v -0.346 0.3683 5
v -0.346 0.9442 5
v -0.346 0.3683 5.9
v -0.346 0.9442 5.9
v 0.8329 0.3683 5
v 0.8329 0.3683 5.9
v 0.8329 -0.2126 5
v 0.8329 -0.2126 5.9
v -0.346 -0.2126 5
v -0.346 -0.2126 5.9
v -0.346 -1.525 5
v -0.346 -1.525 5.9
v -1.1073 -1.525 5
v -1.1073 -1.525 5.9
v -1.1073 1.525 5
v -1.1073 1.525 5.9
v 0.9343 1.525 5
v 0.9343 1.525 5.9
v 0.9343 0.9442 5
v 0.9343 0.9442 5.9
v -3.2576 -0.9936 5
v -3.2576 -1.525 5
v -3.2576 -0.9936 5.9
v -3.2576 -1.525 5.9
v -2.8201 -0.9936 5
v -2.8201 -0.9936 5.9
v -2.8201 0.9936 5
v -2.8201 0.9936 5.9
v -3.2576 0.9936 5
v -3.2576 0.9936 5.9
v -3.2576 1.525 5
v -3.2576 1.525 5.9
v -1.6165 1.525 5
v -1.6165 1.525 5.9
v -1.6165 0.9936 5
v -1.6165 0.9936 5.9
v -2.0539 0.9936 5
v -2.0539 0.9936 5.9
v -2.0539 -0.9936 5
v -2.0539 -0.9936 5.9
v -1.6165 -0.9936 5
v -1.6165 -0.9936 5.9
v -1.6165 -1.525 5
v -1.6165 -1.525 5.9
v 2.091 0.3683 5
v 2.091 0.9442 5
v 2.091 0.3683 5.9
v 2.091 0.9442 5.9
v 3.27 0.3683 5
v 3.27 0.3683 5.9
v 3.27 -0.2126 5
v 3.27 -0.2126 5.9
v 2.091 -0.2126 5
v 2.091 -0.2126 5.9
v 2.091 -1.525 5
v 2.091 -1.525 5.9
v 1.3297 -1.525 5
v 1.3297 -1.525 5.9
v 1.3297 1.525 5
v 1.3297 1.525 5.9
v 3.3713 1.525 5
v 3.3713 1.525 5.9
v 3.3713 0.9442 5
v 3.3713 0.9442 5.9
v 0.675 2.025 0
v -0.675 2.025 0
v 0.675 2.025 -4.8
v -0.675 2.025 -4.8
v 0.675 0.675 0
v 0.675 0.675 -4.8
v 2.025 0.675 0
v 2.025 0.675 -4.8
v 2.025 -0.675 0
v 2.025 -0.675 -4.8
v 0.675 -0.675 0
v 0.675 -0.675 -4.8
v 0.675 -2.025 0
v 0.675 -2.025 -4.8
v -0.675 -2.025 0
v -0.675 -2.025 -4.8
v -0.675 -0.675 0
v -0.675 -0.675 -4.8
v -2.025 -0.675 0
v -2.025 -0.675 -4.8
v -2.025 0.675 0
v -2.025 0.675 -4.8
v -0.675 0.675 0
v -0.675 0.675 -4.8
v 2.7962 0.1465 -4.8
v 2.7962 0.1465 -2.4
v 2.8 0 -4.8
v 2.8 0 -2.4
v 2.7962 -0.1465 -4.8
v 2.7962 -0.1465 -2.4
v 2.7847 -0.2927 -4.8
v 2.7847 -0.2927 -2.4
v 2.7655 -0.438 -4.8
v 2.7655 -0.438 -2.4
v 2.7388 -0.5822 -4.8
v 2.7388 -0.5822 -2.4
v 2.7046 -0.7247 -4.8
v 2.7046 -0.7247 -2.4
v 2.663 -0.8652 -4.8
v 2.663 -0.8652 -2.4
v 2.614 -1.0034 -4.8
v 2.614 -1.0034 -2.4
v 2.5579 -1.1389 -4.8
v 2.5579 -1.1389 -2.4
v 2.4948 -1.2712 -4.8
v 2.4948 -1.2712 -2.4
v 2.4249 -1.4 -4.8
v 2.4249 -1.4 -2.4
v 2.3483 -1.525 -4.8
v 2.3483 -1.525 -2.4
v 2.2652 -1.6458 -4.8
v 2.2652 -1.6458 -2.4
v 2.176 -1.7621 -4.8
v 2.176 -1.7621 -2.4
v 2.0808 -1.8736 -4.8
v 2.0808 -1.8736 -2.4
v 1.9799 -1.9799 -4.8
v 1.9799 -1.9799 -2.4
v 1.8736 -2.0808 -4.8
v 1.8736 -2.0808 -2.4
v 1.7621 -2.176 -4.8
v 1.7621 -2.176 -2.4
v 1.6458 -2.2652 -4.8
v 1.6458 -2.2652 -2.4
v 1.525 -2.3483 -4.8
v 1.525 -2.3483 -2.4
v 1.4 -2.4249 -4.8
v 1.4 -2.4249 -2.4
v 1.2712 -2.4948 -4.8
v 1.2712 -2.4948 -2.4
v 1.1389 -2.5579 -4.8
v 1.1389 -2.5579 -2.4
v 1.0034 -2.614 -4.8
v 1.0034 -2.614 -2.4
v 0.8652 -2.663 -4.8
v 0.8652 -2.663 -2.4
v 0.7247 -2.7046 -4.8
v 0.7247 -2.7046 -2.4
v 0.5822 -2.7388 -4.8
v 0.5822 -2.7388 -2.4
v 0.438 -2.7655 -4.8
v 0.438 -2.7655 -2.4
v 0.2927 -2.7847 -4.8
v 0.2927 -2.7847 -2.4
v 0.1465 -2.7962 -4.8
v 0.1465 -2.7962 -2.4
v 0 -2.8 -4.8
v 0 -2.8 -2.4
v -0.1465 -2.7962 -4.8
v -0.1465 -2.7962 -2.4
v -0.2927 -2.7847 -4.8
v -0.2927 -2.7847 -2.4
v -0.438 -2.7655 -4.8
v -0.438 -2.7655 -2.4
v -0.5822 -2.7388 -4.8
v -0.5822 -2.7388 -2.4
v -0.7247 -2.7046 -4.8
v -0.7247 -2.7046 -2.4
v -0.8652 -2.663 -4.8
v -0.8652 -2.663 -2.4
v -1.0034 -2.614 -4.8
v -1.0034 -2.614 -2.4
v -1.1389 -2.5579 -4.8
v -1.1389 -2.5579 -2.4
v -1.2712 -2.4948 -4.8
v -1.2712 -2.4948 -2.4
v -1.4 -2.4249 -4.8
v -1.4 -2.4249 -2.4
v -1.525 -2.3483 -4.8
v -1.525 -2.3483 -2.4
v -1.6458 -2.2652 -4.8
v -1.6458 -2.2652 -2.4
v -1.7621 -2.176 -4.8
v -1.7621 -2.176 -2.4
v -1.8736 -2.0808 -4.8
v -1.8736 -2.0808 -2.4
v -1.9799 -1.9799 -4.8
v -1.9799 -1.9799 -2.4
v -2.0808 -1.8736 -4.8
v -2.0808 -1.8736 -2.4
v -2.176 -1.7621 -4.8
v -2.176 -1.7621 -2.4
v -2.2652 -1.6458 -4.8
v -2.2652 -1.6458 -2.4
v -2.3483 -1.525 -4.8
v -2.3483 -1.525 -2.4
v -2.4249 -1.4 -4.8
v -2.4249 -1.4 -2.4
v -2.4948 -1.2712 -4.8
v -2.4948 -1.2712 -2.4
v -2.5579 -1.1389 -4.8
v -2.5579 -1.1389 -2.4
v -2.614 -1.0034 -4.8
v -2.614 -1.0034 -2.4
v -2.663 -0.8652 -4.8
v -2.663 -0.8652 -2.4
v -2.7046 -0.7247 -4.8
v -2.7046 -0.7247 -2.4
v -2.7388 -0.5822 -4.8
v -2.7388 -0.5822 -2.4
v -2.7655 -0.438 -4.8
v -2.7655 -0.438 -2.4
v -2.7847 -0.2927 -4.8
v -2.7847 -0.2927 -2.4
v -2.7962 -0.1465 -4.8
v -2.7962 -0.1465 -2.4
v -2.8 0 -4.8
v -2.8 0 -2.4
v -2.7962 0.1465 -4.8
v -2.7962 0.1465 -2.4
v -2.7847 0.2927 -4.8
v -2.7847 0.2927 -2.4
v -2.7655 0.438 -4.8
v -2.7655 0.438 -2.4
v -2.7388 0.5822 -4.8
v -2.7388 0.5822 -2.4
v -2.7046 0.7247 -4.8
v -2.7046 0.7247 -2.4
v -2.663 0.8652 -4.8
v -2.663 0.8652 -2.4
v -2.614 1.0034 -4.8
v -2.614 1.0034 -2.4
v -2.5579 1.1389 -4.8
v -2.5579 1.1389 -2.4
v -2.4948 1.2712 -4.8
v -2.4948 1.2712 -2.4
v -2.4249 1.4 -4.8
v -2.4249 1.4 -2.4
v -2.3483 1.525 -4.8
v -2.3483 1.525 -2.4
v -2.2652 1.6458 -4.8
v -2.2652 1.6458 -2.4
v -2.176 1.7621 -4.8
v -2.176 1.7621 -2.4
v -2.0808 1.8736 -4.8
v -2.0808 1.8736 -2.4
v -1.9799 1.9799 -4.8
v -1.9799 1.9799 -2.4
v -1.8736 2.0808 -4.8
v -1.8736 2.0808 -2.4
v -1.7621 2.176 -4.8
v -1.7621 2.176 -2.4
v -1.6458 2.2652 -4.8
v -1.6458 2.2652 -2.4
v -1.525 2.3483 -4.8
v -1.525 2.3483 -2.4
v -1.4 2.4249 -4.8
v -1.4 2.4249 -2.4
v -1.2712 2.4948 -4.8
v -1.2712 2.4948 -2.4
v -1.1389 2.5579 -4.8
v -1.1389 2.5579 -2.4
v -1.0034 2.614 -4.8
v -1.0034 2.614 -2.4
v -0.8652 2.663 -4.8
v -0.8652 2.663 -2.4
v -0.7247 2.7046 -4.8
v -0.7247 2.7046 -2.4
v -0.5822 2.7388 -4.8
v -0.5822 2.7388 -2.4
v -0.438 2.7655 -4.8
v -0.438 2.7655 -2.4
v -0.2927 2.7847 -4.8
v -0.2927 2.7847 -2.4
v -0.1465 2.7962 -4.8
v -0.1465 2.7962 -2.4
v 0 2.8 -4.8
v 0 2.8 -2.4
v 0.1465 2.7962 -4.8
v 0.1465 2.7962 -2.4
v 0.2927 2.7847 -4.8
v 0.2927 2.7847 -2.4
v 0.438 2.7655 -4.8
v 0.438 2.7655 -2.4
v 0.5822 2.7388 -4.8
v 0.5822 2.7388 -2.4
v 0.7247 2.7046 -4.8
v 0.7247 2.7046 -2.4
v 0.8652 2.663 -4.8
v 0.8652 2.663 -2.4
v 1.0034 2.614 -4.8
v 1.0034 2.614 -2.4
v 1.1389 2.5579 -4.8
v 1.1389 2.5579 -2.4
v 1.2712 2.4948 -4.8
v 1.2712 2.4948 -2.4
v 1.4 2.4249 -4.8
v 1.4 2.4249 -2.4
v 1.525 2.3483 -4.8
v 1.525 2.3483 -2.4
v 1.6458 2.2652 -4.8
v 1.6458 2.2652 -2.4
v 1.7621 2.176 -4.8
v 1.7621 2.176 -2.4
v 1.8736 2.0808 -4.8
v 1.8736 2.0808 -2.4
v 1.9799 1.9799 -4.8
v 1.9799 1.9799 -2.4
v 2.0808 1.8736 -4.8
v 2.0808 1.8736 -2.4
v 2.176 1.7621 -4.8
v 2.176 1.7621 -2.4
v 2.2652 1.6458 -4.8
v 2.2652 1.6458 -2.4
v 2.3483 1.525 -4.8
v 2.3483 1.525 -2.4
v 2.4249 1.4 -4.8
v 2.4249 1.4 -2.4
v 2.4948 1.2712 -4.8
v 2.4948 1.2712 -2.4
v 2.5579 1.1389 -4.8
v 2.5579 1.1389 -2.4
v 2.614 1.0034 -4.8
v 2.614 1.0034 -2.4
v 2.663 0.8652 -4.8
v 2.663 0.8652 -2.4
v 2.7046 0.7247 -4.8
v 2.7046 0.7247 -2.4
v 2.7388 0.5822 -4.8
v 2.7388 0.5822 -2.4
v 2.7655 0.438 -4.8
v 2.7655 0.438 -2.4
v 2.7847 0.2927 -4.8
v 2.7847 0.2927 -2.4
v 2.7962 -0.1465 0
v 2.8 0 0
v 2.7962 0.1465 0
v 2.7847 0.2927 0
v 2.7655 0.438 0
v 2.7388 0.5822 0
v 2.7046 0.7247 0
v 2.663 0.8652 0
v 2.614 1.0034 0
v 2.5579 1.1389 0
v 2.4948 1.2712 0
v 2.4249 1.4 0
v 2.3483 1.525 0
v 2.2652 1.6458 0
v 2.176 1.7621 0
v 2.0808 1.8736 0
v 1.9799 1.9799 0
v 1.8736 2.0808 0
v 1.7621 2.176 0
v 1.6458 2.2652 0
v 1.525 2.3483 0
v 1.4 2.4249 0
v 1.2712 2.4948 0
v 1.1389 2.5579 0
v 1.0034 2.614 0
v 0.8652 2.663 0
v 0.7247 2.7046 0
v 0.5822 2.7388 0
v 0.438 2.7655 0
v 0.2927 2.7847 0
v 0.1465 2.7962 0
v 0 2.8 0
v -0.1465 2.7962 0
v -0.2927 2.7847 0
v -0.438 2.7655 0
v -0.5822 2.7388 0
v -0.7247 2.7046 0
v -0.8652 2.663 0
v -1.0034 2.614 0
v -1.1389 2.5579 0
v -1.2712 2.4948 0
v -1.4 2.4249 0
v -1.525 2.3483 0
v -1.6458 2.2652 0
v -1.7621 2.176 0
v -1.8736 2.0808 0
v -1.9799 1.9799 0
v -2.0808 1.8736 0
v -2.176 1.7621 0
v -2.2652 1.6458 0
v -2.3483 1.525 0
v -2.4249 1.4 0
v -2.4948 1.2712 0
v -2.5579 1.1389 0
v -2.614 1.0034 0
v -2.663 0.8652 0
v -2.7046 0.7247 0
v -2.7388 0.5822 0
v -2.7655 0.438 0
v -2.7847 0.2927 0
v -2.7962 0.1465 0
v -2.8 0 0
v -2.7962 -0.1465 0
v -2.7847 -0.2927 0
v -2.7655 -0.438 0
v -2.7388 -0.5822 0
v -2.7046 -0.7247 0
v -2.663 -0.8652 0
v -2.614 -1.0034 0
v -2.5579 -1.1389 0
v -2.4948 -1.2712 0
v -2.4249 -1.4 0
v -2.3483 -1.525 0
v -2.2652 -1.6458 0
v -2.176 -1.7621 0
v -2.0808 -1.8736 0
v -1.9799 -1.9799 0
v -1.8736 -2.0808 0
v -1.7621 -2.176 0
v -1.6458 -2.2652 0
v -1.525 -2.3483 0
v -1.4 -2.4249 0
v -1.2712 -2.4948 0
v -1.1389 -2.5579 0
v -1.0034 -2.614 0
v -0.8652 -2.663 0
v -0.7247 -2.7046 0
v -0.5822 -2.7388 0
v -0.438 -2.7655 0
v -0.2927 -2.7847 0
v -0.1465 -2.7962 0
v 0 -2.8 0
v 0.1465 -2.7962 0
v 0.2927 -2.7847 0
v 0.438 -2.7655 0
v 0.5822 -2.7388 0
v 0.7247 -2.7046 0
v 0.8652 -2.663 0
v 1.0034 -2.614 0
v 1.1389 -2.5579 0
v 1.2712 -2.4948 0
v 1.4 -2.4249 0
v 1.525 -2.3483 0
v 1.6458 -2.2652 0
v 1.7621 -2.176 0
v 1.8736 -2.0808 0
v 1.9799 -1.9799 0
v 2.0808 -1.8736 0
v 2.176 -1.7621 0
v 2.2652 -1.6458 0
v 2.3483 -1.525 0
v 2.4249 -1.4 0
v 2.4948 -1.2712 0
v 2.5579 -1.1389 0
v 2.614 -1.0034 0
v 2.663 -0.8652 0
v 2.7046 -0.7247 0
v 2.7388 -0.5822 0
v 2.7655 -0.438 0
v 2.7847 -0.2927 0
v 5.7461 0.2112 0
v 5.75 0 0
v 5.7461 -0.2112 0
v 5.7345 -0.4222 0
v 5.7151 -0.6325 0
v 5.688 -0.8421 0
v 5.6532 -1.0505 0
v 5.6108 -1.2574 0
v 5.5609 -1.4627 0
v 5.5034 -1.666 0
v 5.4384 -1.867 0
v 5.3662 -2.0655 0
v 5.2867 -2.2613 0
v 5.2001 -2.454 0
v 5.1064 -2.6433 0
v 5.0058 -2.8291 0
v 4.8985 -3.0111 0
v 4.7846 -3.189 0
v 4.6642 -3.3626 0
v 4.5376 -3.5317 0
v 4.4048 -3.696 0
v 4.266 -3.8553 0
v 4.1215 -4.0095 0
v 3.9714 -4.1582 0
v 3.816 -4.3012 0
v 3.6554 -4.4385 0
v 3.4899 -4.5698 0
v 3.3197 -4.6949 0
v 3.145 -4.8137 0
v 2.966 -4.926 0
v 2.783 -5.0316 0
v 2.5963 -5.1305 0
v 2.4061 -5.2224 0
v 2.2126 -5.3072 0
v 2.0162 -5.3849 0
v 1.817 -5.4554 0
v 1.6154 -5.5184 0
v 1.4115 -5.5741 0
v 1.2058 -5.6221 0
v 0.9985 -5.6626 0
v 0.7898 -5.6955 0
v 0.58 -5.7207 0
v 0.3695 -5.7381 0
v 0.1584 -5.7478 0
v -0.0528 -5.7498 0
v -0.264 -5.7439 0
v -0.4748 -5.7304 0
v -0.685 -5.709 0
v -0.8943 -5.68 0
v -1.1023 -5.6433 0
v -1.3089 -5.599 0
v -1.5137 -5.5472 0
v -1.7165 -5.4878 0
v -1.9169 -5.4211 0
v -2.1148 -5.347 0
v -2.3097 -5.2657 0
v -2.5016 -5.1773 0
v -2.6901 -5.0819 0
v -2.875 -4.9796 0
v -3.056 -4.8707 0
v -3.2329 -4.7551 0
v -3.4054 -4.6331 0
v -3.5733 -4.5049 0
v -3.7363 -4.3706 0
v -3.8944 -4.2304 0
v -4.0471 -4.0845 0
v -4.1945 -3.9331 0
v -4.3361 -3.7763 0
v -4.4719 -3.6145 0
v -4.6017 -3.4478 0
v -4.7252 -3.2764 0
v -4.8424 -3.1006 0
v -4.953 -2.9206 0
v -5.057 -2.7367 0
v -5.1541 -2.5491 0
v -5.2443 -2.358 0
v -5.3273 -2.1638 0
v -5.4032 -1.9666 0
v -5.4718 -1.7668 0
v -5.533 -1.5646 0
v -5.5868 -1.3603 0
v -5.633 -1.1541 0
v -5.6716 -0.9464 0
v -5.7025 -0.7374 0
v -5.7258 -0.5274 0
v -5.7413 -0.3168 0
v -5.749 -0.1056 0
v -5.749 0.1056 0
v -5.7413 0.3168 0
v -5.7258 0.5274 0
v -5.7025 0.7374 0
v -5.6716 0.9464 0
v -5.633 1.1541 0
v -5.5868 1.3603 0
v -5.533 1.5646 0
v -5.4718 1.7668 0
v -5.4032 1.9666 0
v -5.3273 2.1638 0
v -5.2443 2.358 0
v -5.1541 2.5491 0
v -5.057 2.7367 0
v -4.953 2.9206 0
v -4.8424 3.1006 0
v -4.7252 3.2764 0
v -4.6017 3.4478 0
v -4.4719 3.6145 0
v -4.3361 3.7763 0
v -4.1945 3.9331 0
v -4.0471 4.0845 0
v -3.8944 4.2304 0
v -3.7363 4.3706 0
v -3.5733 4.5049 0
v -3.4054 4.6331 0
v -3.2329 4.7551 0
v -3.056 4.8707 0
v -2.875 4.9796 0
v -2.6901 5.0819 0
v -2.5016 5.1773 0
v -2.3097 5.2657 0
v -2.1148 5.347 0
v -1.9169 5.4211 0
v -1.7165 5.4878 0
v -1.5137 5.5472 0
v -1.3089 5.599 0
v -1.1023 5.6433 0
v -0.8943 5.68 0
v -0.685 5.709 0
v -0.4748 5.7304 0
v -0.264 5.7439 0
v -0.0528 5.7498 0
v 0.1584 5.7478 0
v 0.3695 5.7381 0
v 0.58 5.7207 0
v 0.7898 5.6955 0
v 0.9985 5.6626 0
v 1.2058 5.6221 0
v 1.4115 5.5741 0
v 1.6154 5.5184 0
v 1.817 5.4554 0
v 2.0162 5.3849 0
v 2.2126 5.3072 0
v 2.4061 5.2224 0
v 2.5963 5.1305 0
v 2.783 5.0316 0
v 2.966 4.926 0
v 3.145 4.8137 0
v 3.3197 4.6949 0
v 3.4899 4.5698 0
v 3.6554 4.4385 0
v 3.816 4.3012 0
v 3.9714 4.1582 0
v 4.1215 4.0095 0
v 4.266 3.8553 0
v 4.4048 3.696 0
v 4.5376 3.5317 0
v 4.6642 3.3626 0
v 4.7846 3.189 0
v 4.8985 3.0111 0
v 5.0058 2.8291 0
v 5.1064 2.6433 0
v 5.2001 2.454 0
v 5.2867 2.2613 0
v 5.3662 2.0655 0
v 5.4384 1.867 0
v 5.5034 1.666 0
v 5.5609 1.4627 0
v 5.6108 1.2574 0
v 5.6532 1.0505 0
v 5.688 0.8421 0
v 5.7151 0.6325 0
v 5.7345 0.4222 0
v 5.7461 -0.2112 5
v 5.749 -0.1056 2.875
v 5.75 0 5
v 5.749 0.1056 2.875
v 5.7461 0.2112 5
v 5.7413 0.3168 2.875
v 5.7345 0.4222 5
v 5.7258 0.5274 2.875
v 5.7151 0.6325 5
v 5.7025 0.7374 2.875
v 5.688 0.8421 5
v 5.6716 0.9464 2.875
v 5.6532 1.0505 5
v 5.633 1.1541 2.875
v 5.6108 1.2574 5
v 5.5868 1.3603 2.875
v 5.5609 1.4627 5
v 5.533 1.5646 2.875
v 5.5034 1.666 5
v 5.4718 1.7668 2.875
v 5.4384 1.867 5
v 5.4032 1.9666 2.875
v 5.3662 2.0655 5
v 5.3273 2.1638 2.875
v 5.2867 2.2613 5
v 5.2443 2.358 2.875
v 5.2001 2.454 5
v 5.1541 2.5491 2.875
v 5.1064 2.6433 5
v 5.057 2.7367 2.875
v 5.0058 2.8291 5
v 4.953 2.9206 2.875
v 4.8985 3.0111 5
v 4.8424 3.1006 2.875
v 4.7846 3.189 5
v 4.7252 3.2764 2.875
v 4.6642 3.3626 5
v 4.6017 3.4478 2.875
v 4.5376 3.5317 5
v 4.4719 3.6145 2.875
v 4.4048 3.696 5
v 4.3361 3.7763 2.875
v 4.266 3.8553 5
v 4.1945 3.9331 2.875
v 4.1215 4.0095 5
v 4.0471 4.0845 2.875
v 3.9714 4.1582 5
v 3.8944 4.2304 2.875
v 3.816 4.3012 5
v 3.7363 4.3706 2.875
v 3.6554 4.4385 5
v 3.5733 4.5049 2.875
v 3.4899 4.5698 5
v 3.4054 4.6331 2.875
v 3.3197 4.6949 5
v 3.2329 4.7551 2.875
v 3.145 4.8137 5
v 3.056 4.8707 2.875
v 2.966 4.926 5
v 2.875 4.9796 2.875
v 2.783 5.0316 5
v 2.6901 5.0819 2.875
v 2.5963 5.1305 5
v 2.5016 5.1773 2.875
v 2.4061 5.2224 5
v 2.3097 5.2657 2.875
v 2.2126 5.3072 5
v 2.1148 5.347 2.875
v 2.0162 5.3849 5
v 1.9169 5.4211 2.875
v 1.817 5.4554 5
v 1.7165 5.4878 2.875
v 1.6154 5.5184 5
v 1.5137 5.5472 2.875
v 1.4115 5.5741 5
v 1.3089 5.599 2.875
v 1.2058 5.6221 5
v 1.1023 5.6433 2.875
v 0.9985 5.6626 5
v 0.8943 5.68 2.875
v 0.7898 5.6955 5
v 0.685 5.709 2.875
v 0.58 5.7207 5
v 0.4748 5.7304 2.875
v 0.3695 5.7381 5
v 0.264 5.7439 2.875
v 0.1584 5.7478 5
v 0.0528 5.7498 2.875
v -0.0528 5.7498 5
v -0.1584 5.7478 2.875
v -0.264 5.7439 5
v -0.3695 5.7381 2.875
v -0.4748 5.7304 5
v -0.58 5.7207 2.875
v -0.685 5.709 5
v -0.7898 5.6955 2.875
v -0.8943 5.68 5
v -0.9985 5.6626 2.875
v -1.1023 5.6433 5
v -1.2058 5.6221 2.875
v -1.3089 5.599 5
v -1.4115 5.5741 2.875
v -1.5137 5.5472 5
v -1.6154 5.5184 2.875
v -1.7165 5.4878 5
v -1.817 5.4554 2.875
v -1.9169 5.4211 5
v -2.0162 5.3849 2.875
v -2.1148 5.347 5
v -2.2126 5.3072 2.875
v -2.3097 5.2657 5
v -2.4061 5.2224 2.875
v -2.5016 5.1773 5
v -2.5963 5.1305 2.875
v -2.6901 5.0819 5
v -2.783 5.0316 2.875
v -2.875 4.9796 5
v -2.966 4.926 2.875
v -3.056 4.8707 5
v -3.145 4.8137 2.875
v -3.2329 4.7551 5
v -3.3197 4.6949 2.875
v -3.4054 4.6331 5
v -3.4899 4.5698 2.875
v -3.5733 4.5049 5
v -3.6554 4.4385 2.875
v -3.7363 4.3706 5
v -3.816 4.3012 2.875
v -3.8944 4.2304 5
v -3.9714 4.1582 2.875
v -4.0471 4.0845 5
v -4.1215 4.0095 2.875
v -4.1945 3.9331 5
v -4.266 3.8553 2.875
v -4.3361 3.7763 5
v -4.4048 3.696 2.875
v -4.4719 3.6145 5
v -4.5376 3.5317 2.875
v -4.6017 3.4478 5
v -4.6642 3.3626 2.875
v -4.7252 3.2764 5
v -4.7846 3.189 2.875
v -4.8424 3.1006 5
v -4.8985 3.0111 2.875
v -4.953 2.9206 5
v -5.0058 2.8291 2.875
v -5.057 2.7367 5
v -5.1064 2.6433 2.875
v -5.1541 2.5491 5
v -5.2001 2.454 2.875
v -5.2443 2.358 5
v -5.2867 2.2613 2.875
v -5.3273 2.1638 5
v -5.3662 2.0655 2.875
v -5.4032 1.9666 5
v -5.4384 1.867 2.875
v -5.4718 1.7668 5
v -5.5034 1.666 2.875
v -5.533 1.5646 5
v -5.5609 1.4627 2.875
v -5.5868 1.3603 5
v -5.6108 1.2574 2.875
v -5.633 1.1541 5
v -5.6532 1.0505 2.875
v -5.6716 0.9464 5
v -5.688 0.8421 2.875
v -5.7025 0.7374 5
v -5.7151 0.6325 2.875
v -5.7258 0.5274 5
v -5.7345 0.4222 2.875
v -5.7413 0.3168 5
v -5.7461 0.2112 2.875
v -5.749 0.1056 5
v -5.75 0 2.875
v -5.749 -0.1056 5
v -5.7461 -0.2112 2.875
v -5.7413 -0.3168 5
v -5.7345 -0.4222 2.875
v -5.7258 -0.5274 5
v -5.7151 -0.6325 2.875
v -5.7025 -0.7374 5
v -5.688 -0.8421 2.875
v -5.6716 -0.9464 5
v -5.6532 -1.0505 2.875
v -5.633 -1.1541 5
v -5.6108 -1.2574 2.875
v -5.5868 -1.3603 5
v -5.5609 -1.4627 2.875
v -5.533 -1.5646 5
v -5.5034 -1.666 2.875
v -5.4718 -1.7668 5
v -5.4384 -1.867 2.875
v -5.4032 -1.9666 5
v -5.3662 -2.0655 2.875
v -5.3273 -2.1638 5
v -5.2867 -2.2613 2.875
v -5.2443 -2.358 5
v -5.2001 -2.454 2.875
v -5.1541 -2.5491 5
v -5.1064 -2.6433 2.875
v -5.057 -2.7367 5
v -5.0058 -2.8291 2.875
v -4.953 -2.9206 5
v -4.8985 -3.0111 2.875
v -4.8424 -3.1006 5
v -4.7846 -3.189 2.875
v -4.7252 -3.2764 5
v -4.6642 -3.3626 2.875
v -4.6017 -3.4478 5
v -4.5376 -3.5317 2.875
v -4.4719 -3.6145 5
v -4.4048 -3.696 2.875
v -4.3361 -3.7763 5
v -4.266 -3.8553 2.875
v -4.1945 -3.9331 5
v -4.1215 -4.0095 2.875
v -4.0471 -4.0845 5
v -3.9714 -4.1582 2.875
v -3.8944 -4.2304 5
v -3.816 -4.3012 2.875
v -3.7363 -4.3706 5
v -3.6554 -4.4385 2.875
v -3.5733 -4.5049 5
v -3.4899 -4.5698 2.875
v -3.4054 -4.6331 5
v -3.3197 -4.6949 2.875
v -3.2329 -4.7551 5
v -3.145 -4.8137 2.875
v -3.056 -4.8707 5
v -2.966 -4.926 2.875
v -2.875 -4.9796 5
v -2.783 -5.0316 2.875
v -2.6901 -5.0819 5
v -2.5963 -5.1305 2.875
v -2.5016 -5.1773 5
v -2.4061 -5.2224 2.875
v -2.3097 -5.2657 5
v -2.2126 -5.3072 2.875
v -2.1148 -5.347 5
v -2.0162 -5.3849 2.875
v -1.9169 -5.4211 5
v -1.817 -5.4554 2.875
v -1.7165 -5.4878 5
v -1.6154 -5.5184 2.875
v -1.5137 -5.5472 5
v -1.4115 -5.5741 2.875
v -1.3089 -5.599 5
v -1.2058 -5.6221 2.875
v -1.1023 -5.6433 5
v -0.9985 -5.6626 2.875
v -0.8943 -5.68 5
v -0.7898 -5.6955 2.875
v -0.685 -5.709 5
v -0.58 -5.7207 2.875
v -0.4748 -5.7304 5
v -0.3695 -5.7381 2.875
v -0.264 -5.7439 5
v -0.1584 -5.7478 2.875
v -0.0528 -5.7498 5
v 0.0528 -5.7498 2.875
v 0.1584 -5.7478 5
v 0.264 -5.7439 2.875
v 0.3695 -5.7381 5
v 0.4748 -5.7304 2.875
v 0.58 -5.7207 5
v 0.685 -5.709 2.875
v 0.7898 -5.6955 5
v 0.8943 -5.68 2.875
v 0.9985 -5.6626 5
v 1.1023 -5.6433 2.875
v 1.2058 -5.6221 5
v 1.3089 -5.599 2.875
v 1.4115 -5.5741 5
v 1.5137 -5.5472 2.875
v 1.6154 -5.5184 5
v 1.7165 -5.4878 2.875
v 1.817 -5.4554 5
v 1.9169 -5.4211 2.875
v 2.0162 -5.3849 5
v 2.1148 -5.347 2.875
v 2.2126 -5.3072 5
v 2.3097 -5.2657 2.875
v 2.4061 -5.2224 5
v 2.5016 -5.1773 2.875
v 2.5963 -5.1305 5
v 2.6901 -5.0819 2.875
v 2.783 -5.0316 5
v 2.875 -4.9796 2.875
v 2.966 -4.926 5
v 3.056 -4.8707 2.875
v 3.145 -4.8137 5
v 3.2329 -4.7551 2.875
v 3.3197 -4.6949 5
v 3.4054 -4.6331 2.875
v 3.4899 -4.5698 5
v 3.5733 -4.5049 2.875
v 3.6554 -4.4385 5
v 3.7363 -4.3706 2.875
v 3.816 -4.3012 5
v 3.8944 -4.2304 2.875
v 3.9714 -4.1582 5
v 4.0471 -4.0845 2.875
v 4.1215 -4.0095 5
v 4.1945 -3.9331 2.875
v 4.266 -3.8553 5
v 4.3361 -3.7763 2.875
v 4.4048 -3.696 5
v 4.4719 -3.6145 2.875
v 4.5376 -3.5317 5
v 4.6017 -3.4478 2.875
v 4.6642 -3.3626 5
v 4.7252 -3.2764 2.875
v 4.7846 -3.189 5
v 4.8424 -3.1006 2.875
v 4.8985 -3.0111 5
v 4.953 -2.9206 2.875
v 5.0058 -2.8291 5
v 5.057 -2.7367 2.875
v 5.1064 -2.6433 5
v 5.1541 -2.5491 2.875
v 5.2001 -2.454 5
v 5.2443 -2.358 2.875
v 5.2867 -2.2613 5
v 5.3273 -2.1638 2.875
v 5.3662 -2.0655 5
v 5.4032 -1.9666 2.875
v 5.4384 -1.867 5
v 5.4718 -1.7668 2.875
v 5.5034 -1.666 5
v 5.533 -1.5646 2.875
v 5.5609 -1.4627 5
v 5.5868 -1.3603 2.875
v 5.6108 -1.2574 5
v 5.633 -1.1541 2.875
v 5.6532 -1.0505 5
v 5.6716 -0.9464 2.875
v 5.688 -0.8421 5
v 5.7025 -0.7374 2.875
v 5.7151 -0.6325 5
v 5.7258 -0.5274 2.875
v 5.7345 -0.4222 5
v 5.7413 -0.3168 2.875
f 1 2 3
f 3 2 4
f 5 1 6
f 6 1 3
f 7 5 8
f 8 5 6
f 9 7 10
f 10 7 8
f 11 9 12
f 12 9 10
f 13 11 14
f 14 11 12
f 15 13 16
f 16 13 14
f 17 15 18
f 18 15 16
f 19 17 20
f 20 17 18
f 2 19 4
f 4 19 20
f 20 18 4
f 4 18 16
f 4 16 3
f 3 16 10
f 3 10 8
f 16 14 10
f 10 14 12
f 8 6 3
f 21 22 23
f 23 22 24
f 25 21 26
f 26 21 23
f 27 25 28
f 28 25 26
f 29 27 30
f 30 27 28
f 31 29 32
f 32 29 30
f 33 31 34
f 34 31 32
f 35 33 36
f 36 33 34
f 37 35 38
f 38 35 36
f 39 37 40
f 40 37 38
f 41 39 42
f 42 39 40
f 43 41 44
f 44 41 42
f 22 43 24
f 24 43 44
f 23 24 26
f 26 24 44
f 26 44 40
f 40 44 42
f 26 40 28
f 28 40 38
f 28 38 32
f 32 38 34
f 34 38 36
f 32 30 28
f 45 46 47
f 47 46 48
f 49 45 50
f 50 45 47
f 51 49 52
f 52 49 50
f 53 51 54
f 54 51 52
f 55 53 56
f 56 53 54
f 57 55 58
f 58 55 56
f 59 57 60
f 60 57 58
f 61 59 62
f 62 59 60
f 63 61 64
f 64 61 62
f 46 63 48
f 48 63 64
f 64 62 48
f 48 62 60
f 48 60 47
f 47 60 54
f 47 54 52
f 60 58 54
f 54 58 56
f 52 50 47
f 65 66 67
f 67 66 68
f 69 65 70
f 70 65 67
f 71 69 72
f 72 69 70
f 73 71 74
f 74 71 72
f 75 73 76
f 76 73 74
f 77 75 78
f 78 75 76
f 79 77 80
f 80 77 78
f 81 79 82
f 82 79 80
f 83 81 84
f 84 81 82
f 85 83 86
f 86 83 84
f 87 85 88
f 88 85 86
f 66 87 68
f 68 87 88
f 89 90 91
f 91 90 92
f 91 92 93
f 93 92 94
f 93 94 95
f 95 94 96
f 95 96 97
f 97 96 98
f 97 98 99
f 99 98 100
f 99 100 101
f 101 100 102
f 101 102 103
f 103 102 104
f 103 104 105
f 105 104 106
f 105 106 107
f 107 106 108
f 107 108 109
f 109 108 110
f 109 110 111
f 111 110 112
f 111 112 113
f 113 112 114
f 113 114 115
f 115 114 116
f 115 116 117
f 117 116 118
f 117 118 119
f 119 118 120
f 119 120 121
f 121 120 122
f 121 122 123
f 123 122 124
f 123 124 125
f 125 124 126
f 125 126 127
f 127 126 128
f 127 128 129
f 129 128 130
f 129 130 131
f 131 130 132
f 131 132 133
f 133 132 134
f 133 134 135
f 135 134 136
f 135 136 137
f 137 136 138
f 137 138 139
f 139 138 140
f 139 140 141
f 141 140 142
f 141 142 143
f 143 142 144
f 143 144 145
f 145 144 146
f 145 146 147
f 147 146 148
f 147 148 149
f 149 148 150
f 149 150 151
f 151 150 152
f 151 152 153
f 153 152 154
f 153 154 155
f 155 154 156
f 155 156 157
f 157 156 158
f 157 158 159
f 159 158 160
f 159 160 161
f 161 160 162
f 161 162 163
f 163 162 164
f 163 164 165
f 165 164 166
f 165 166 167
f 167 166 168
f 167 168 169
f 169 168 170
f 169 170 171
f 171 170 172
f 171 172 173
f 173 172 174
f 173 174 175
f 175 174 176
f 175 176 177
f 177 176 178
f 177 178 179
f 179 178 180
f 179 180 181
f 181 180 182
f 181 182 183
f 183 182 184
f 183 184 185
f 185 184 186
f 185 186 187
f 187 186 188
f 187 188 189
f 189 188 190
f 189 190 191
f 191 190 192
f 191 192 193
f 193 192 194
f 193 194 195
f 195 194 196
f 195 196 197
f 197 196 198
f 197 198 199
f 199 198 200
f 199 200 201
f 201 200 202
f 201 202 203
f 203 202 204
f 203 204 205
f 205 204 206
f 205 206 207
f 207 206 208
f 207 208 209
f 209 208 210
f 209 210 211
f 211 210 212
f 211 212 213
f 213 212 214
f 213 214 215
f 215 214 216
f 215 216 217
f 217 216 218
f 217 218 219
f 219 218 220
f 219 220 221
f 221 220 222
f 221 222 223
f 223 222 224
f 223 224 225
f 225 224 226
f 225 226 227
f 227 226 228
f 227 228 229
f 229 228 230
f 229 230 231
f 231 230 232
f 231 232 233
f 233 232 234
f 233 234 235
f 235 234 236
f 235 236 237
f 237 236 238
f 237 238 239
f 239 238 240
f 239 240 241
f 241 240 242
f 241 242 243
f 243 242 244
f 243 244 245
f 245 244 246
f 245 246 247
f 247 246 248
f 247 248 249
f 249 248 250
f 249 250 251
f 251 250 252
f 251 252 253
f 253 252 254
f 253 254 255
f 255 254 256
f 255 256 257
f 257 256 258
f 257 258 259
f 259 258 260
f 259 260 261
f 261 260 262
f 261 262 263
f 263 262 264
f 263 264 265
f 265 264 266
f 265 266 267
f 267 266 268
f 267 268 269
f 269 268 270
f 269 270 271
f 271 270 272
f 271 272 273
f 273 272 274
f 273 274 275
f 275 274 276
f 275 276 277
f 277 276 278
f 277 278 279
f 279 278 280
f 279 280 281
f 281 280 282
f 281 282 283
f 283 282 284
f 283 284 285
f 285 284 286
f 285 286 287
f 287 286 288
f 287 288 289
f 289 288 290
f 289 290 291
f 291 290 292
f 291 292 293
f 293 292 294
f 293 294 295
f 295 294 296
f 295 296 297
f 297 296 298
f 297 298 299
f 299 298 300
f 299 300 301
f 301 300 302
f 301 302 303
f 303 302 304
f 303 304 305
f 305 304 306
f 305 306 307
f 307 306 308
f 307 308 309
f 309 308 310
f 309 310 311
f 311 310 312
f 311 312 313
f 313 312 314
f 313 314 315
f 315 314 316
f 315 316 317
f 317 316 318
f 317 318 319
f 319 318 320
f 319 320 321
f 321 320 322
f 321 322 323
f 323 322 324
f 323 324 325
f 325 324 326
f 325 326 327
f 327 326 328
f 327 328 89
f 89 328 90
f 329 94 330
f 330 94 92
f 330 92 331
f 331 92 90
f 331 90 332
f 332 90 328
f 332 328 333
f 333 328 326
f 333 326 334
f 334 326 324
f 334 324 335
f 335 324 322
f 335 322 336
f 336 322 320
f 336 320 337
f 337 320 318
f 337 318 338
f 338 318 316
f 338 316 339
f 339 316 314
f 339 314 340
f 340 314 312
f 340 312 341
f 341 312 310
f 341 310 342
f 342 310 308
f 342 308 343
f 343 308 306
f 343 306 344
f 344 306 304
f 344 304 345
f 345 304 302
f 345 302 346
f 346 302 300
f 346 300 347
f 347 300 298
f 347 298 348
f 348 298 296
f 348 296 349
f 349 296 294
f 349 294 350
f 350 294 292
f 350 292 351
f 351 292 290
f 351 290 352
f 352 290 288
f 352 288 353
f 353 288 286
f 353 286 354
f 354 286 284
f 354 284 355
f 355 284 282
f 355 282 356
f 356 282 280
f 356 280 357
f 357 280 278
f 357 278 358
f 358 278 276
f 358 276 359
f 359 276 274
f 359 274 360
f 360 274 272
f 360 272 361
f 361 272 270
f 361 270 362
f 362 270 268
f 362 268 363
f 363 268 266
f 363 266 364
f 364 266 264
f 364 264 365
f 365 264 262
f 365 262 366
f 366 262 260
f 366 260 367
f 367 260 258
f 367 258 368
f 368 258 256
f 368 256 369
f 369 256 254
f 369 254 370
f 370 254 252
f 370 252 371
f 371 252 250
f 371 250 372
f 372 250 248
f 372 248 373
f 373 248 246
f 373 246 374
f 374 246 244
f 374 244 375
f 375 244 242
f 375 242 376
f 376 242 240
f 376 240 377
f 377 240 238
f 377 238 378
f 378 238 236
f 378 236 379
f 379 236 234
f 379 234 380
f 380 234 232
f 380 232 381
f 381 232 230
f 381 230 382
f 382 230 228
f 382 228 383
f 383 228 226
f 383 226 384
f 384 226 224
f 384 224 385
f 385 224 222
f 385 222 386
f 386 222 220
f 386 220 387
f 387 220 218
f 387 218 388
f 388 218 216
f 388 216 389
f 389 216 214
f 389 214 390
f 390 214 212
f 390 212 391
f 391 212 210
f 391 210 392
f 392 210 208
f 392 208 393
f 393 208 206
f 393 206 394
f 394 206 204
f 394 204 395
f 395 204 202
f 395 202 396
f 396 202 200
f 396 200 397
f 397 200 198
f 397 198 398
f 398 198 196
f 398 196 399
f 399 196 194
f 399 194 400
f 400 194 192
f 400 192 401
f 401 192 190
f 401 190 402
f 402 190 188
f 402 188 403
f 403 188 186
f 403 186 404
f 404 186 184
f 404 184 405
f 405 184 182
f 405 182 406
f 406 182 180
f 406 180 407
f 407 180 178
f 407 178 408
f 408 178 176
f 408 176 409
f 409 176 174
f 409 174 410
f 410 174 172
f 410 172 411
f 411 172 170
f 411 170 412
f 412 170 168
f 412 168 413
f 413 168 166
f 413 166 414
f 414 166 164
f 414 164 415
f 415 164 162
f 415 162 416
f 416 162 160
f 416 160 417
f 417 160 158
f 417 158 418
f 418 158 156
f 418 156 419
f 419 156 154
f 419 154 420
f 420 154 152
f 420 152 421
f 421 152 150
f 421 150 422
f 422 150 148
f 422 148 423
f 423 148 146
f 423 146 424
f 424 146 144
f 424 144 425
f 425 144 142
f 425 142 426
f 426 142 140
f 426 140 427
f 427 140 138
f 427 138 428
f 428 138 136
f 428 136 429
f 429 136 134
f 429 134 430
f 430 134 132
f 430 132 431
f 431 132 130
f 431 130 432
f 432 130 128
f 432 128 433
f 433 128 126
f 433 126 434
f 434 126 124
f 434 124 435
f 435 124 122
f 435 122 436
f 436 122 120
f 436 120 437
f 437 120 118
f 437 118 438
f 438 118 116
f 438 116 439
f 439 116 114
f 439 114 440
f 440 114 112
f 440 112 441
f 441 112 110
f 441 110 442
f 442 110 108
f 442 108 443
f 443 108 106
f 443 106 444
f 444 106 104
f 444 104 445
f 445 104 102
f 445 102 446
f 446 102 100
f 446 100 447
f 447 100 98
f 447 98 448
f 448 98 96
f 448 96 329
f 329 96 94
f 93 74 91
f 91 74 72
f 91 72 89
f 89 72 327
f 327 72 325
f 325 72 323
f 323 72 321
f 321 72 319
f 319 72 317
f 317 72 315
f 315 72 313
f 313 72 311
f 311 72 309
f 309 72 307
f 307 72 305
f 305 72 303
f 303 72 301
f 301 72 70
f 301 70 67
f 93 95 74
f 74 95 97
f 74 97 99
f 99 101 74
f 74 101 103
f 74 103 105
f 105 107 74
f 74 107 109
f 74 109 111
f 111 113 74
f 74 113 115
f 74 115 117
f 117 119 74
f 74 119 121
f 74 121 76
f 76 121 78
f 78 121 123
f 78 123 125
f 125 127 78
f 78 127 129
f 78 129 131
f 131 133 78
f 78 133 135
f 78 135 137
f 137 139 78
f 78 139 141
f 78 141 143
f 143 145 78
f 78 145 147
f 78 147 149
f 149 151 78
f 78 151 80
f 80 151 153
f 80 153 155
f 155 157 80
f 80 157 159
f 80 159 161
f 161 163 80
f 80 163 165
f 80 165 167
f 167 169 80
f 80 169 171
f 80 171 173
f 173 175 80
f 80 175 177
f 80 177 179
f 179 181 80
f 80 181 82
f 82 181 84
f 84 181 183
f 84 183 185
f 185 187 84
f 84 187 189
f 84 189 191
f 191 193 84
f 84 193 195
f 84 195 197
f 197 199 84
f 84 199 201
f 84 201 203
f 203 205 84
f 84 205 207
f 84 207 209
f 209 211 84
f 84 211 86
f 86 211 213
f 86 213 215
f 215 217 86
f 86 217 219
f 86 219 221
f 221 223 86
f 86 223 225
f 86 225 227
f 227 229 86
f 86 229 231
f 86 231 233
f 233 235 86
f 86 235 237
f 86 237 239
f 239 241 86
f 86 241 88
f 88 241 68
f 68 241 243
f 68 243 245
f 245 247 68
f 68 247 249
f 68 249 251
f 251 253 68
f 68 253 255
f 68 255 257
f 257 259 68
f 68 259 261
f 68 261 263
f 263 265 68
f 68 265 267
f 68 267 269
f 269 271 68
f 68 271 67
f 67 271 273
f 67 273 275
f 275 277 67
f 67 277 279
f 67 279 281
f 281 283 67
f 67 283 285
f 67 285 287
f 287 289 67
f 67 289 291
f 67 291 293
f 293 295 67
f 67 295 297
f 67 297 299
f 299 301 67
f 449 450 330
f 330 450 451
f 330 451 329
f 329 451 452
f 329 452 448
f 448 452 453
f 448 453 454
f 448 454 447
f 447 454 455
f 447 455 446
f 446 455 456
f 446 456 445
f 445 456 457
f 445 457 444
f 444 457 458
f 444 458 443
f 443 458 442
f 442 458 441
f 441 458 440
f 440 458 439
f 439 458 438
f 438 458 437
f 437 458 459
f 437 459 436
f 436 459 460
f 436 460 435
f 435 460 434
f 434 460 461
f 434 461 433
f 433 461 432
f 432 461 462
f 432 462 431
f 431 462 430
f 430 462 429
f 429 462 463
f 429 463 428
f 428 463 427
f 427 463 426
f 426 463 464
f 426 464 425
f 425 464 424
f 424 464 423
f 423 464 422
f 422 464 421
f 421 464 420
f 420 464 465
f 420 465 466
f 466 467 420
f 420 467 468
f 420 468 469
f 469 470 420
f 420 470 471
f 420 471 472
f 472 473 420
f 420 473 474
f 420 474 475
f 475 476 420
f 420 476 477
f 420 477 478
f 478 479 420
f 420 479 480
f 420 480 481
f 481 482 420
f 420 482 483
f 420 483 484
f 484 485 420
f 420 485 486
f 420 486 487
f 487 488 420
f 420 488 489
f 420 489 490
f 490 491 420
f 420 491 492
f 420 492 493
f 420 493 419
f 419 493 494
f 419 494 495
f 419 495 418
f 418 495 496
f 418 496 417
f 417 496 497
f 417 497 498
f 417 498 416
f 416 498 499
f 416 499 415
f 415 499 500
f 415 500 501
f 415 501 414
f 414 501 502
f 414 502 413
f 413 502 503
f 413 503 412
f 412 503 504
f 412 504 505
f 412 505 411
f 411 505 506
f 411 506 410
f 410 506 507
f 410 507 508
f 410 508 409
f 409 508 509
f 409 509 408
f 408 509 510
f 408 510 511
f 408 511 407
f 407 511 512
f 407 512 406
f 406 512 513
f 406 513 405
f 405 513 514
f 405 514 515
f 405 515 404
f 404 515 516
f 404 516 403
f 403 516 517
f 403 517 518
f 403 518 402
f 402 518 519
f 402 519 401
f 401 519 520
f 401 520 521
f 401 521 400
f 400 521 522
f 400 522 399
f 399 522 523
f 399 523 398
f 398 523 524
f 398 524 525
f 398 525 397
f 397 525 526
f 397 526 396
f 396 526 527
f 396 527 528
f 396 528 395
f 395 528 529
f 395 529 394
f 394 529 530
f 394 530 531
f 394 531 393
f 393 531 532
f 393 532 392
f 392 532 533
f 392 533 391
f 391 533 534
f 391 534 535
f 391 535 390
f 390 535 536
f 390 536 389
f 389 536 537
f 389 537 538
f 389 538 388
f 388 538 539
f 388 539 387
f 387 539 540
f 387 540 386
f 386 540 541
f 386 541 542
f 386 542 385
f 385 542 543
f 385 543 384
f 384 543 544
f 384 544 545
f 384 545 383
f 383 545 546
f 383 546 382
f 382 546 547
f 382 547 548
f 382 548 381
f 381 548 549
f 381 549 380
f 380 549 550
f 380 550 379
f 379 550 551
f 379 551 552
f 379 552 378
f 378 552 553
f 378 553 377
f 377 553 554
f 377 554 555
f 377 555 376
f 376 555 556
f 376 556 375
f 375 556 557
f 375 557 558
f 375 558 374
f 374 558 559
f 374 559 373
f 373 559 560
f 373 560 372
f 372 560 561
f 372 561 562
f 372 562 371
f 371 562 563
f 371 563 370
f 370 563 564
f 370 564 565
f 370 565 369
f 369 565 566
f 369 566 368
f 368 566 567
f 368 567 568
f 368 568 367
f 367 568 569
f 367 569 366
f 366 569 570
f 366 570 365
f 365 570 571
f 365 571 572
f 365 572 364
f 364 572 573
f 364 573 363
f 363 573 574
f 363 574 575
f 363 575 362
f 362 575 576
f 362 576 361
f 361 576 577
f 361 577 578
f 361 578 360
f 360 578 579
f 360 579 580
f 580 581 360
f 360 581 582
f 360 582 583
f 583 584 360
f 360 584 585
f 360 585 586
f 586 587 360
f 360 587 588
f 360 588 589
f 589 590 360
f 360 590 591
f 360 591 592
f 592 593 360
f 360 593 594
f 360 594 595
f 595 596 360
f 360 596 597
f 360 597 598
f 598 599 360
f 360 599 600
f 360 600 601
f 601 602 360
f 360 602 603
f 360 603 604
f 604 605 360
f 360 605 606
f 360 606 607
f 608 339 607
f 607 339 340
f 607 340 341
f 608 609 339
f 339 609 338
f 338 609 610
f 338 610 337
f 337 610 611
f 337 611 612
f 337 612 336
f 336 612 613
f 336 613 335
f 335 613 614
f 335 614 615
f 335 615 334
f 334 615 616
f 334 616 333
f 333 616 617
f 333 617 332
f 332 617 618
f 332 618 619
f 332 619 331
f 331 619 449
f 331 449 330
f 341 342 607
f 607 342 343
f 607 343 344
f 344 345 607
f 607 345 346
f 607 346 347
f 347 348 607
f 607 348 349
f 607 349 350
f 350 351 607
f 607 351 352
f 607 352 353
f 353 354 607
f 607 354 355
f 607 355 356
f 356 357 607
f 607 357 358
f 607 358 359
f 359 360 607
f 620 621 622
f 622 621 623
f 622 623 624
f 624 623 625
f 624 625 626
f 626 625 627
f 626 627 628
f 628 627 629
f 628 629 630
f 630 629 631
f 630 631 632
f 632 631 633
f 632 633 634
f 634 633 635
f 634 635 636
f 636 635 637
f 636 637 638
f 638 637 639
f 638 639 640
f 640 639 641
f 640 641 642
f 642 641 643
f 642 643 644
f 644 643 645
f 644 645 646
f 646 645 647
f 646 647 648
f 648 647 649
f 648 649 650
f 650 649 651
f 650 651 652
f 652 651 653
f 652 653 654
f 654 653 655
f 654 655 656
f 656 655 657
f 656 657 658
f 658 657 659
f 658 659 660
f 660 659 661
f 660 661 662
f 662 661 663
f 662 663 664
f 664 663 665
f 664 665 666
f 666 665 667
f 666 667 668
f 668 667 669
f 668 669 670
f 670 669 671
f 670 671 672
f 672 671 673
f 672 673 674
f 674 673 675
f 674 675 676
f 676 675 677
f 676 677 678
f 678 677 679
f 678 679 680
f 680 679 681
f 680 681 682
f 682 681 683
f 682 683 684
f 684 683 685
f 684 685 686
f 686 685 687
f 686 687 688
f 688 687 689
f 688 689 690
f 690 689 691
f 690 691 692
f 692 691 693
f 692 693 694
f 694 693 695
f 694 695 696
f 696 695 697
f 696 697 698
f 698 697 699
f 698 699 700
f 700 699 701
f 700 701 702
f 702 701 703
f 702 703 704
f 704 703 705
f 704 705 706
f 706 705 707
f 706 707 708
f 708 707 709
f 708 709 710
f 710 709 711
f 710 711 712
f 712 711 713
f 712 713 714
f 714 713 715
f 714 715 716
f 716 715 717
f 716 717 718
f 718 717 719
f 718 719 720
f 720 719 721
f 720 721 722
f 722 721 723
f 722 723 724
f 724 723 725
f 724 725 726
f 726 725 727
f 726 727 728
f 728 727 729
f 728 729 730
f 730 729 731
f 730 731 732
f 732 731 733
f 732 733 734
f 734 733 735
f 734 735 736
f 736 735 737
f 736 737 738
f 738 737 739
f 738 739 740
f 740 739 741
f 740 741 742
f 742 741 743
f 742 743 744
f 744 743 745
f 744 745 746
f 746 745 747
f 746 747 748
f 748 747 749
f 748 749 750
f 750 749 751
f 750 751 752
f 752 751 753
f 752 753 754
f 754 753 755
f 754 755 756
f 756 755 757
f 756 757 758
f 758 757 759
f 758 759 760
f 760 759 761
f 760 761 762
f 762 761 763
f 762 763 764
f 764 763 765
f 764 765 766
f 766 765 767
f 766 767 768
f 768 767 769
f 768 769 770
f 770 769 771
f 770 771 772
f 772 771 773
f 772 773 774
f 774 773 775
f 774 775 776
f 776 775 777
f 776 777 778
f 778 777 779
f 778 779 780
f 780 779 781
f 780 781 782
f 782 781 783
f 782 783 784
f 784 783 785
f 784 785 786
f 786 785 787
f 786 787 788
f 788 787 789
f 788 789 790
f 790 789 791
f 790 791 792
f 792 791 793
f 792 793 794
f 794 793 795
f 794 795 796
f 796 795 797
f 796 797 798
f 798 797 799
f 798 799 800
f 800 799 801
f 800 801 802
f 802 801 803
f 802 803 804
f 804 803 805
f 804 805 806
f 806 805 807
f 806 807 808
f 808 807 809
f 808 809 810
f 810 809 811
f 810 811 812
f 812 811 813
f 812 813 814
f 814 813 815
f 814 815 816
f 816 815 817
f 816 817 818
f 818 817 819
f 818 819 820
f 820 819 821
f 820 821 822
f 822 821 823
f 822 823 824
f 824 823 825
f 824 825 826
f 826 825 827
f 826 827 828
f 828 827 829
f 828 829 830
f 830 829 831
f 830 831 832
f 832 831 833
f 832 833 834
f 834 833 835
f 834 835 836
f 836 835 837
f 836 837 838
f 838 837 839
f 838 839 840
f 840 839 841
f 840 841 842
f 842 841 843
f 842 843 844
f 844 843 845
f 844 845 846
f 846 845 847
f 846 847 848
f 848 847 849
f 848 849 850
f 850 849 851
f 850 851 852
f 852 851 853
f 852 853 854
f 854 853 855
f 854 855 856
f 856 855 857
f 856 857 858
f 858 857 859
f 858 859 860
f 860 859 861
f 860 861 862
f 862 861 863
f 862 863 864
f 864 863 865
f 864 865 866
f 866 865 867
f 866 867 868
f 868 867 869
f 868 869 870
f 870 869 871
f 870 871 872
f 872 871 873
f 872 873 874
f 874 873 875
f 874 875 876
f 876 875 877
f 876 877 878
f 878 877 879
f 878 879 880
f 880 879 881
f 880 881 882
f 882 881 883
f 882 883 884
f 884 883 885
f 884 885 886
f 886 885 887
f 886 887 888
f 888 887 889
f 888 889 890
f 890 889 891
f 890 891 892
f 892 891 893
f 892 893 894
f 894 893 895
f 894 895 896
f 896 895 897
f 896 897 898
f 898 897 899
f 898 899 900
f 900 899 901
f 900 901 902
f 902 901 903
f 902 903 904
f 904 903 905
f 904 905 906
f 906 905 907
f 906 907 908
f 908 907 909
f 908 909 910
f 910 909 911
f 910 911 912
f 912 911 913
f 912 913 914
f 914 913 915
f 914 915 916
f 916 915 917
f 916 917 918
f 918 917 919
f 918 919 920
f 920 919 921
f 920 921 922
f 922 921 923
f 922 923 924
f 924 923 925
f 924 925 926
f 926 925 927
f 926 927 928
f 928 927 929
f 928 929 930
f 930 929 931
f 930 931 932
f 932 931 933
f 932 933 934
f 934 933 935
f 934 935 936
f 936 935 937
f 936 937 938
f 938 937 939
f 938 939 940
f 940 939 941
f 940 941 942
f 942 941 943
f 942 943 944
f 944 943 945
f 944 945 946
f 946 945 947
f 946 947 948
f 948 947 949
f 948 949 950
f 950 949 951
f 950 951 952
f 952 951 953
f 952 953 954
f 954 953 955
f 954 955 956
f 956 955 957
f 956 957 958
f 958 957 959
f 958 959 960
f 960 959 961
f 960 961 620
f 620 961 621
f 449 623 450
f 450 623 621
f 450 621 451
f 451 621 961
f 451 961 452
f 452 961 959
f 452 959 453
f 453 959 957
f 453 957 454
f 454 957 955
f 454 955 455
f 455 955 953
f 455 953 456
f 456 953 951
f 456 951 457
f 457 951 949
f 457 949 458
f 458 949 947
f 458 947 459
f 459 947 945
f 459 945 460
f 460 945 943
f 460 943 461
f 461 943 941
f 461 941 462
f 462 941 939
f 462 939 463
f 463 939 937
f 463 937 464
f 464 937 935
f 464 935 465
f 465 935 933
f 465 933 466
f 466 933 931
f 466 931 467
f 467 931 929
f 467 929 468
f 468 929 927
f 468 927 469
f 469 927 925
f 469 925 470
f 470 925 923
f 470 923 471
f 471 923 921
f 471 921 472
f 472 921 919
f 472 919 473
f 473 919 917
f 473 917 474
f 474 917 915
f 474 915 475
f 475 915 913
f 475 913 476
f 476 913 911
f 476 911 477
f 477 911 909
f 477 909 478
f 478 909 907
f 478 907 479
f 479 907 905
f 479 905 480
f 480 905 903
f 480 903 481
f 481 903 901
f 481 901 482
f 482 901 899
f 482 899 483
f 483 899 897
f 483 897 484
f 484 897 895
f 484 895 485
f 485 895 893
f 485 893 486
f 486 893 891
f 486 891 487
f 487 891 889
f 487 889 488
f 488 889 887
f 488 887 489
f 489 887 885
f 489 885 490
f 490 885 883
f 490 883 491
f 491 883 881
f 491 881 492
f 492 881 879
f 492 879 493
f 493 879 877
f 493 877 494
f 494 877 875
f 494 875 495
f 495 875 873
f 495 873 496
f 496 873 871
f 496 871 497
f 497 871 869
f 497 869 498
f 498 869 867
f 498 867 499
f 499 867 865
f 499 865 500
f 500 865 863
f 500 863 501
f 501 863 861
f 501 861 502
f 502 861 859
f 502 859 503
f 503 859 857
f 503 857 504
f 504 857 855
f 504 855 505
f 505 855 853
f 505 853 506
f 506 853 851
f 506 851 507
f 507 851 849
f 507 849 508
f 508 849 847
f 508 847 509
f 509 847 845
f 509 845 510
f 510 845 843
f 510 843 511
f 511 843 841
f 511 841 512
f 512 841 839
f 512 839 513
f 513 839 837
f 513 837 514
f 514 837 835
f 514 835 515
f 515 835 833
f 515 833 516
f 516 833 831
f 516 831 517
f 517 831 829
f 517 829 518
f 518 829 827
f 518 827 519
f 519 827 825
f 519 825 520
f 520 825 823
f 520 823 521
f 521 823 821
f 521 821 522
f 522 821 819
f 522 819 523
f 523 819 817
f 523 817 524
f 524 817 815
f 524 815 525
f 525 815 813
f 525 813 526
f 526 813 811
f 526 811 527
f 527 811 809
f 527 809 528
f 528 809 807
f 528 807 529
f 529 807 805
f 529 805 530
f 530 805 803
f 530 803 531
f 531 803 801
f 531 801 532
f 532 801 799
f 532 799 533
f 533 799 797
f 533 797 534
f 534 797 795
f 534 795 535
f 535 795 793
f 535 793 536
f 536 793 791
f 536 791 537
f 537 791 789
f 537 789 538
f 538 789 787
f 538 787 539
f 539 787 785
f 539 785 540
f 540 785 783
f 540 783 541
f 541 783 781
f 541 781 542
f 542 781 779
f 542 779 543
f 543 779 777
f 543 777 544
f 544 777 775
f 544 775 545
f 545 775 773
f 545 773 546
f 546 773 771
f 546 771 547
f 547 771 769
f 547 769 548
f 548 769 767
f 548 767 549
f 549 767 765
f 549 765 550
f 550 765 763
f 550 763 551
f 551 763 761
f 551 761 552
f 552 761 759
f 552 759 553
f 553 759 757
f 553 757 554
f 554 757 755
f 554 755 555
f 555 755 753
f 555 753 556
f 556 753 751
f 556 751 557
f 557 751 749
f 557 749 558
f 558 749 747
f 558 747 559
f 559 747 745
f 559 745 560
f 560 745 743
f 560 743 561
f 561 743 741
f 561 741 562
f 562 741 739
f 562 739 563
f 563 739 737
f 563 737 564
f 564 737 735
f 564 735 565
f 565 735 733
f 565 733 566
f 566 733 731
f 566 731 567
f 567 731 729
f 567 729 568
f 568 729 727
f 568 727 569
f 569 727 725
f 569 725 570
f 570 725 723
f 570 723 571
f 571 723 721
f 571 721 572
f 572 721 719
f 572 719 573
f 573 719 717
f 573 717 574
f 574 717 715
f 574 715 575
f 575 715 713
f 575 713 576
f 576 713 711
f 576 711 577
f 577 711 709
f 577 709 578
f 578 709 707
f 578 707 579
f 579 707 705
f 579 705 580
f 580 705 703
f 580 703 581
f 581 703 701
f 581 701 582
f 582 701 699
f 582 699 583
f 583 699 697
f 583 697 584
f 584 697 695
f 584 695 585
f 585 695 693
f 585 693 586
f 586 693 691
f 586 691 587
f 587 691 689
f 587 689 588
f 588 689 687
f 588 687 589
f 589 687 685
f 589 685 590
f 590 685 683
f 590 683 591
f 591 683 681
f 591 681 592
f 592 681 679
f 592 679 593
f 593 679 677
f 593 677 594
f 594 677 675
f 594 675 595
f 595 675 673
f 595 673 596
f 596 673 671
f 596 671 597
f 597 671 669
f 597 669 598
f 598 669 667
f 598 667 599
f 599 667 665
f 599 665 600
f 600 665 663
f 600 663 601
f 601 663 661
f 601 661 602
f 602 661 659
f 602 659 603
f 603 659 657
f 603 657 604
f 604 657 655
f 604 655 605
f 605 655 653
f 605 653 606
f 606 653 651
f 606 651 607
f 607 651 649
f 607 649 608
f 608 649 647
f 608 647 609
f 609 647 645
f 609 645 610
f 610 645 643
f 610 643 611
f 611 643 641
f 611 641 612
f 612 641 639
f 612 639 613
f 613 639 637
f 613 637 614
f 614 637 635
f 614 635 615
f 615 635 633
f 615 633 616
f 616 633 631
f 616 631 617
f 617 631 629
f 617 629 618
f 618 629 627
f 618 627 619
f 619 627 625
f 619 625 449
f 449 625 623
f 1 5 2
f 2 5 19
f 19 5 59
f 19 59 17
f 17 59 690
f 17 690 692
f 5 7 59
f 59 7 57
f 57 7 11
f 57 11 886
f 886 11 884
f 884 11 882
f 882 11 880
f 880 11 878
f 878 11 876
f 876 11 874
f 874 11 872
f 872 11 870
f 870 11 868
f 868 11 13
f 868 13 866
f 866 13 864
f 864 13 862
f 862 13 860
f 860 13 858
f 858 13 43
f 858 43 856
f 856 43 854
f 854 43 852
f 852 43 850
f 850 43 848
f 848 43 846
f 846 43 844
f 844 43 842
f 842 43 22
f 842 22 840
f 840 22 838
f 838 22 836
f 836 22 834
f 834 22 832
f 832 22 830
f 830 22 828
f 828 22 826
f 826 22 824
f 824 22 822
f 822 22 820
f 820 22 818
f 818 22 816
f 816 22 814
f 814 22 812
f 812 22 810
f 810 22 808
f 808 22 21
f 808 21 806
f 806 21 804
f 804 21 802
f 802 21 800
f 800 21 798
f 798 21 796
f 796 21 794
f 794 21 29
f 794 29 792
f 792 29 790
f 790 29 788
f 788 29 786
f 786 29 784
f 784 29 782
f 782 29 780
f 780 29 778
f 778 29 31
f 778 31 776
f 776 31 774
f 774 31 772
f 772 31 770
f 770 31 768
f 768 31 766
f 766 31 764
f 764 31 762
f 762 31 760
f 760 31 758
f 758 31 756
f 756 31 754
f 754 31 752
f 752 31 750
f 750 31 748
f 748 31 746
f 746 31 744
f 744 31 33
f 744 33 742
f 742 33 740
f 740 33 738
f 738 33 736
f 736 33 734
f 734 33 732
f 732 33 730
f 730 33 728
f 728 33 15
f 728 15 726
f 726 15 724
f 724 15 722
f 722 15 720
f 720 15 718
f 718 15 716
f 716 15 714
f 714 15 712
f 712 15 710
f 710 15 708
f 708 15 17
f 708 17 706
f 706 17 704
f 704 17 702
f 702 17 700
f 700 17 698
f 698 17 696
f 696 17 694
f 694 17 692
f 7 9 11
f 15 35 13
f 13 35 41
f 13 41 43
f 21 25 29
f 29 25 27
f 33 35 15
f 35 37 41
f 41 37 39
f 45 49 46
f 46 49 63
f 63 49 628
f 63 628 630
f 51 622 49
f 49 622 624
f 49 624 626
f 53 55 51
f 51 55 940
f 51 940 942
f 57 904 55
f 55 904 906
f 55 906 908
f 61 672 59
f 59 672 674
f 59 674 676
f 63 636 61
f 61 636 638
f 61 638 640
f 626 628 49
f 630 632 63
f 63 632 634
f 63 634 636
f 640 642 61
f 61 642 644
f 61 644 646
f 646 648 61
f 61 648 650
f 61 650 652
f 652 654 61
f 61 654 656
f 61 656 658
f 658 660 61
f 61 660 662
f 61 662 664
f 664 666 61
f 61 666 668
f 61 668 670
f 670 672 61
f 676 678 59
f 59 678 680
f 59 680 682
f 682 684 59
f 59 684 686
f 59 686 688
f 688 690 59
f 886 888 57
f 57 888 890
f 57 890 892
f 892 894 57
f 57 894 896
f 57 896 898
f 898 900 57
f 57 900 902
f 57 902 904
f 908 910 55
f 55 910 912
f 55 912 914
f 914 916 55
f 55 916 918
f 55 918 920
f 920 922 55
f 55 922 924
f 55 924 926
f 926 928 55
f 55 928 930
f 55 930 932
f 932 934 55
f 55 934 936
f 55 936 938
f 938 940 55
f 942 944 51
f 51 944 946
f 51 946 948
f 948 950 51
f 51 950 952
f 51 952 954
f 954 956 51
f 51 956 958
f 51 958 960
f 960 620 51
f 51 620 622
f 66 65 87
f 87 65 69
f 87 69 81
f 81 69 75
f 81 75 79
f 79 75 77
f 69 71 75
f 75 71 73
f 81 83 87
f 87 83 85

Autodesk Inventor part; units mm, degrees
ref_plane "YZ Plane" through (0, 0, 0) normal (1, 0, 0) x (0, 1, 0)
ref_plane "XZ Plane" through (0, 0, 0) normal (0, 1, 0) x (-1, 0, 0)
ref_plane "XY Plane" through (0, 0, 0) normal (0, 0, 1) x (1, 0, 0)
sketch "Sketch1" plane through (0, 0, 0) normal (0, 0, 1) x (1, 0, 0)
  circle A0 centre (0, 0) radius 6.22 construction
  circle A1 centre (0, 0) radius 2.8
  line L0 (-0.675, 0.675) -> (-0.675, 2.025)
  line L1 (-0.675, 2.025) -> (0.675, 2.025)
  line L2 (0.675, 2.025) -> (0.675, 0.675)
  line L3 (0.675, 0.675) -> (2.025, 0.675)
  line L4 (2.025, 0.675) -> (2.025, -0.675)
  line L5 (2.025, -0.675) -> (0.675, -0.675)
  line L6 (0.675, -0.675) -> (0.675, -2.025)
  line L7 (0.675, -2.025) -> (-0.675, -2.025)
  line L8 (-0.675, -2.025) -> (-0.675, -0.675)
  line L9 (-0.675, -0.675) -> (-2.025, -0.675)
  line L10 (-2.025, -0.675) -> (-2.025, 0.675)
  line L11 (-2.025, 0.675) -> (-0.675, 0.675)
  circle A2 centre (0, 0) radius 5.75
  point P0 (-6.07, -6.1)
  dimension "d0" = 12.44
  dimension "d1" = 0.47
extrude "Extrusion1" add sketch "Sketch1" along normal blind 5 contours A1 | L0 L1 L2 L3 L4 L5 L6 L7 L8 L9 L10 L11 | A2
extrude "Extrusion2" add sketch "Sketch1" against normal blind 4.8 contours A1
sketch "Sketch2" plane through (0, 0, 5) normal (0, 0, 1) x (1, 0, 0)
  point P0 (0, 0)
sketch "Sketch3" plane through (0, 0, 5) normal (0, 0, 1) x (1, 0, 0)
  line L0 (-3.4504, 1.525) -> (3.4504, 1.525) construction
  line L1 (3.4504, 1.525) -> (3.4504, -1.525) construction
  line L2 (3.4504, -1.525) -> (-3.4504, -1.525) construction
  line L3 (-3.4504, -1.525) -> (-3.4504, 1.525) construction
  line L4 (-1.6165, -1.525) -> (-3.2576, -1.525)
  line L5 (-3.2576, -1.525) -> (-3.2576, -0.9936)
  line L6 (-3.2576, -0.9936) -> (-2.8201, -0.9936)
  line L7 (-2.8201, -0.9936) -> (-2.8201, 0.9936)
  line L8 (-2.8201, 0.9936) -> (-3.2576, 0.9936)
  line L9 (-3.2576, 0.9936) -> (-3.2576, 1.525)
  line L10 (-3.2576, 1.525) -> (-1.6165, 1.525)
  line L11 (-1.6165, 1.525) -> (-1.6165, 0.9936)
  line L12 (-1.6165, 0.9936) -> (-2.0539, 0.9936)
  line L13 (-2.0539, 0.9936) -> (-2.0539, -0.9936)
  line L14 (-2.0539, -0.9936) -> (-1.6165, -0.9936)
  line L15 (-1.6165, -0.9936) -> (-1.6165, -1.525)
  line L16 (0.9343, 0.9442) -> (-0.346, 0.9442)
  line L17 (-0.346, 0.9442) -> (-0.346, 0.3683)
  line L18 (-0.346, 0.3683) -> (0.8329, 0.3683)
  line L19 (0.8329, 0.3683) -> (0.8329, -0.2126)
  line L20 (0.8329, -0.2126) -> (-0.346, -0.2126)
  line L21 (-0.346, -0.2126) -> (-0.346, -1.525)
  line L22 (-0.346, -1.525) -> (-1.1073, -1.525)
  line L23 (-1.1073, -1.525) -> (-1.1073, 1.525)
  line L24 (-1.1073, 1.525) -> (0.9343, 1.525)
  line L25 (0.9343, 1.525) -> (0.9343, 0.9442)
  line L26 (3.3713, 0.9442) -> (2.091, 0.9442)
  line L27 (2.091, 0.9442) -> (2.091, 0.3683)
  line L28 (2.091, 0.3683) -> (3.27, 0.3683)
  line L29 (3.27, 0.3683) -> (3.27, -0.2126)
  line L30 (3.27, -0.2126) -> (2.091, -0.2126)
  line L31 (2.091, -0.2126) -> (2.091, -1.525)
  line L32 (2.091, -1.525) -> (1.3297, -1.525)
  line L33 (1.3297, -1.525) -> (1.3297, 1.525)
  line L34 (1.3297, 1.525) -> (3.3713, 1.525)
  line L35 (3.3713, 1.525) -> (3.3713, 0.9442)
  point P0 (0, 0)
  point P1 (0, -1.525)
  point P2 (0, 0)
extrude "Extrusion4" add sketch "Sketch3" along normal blind 0.9
properties part number "IPC IFF"
